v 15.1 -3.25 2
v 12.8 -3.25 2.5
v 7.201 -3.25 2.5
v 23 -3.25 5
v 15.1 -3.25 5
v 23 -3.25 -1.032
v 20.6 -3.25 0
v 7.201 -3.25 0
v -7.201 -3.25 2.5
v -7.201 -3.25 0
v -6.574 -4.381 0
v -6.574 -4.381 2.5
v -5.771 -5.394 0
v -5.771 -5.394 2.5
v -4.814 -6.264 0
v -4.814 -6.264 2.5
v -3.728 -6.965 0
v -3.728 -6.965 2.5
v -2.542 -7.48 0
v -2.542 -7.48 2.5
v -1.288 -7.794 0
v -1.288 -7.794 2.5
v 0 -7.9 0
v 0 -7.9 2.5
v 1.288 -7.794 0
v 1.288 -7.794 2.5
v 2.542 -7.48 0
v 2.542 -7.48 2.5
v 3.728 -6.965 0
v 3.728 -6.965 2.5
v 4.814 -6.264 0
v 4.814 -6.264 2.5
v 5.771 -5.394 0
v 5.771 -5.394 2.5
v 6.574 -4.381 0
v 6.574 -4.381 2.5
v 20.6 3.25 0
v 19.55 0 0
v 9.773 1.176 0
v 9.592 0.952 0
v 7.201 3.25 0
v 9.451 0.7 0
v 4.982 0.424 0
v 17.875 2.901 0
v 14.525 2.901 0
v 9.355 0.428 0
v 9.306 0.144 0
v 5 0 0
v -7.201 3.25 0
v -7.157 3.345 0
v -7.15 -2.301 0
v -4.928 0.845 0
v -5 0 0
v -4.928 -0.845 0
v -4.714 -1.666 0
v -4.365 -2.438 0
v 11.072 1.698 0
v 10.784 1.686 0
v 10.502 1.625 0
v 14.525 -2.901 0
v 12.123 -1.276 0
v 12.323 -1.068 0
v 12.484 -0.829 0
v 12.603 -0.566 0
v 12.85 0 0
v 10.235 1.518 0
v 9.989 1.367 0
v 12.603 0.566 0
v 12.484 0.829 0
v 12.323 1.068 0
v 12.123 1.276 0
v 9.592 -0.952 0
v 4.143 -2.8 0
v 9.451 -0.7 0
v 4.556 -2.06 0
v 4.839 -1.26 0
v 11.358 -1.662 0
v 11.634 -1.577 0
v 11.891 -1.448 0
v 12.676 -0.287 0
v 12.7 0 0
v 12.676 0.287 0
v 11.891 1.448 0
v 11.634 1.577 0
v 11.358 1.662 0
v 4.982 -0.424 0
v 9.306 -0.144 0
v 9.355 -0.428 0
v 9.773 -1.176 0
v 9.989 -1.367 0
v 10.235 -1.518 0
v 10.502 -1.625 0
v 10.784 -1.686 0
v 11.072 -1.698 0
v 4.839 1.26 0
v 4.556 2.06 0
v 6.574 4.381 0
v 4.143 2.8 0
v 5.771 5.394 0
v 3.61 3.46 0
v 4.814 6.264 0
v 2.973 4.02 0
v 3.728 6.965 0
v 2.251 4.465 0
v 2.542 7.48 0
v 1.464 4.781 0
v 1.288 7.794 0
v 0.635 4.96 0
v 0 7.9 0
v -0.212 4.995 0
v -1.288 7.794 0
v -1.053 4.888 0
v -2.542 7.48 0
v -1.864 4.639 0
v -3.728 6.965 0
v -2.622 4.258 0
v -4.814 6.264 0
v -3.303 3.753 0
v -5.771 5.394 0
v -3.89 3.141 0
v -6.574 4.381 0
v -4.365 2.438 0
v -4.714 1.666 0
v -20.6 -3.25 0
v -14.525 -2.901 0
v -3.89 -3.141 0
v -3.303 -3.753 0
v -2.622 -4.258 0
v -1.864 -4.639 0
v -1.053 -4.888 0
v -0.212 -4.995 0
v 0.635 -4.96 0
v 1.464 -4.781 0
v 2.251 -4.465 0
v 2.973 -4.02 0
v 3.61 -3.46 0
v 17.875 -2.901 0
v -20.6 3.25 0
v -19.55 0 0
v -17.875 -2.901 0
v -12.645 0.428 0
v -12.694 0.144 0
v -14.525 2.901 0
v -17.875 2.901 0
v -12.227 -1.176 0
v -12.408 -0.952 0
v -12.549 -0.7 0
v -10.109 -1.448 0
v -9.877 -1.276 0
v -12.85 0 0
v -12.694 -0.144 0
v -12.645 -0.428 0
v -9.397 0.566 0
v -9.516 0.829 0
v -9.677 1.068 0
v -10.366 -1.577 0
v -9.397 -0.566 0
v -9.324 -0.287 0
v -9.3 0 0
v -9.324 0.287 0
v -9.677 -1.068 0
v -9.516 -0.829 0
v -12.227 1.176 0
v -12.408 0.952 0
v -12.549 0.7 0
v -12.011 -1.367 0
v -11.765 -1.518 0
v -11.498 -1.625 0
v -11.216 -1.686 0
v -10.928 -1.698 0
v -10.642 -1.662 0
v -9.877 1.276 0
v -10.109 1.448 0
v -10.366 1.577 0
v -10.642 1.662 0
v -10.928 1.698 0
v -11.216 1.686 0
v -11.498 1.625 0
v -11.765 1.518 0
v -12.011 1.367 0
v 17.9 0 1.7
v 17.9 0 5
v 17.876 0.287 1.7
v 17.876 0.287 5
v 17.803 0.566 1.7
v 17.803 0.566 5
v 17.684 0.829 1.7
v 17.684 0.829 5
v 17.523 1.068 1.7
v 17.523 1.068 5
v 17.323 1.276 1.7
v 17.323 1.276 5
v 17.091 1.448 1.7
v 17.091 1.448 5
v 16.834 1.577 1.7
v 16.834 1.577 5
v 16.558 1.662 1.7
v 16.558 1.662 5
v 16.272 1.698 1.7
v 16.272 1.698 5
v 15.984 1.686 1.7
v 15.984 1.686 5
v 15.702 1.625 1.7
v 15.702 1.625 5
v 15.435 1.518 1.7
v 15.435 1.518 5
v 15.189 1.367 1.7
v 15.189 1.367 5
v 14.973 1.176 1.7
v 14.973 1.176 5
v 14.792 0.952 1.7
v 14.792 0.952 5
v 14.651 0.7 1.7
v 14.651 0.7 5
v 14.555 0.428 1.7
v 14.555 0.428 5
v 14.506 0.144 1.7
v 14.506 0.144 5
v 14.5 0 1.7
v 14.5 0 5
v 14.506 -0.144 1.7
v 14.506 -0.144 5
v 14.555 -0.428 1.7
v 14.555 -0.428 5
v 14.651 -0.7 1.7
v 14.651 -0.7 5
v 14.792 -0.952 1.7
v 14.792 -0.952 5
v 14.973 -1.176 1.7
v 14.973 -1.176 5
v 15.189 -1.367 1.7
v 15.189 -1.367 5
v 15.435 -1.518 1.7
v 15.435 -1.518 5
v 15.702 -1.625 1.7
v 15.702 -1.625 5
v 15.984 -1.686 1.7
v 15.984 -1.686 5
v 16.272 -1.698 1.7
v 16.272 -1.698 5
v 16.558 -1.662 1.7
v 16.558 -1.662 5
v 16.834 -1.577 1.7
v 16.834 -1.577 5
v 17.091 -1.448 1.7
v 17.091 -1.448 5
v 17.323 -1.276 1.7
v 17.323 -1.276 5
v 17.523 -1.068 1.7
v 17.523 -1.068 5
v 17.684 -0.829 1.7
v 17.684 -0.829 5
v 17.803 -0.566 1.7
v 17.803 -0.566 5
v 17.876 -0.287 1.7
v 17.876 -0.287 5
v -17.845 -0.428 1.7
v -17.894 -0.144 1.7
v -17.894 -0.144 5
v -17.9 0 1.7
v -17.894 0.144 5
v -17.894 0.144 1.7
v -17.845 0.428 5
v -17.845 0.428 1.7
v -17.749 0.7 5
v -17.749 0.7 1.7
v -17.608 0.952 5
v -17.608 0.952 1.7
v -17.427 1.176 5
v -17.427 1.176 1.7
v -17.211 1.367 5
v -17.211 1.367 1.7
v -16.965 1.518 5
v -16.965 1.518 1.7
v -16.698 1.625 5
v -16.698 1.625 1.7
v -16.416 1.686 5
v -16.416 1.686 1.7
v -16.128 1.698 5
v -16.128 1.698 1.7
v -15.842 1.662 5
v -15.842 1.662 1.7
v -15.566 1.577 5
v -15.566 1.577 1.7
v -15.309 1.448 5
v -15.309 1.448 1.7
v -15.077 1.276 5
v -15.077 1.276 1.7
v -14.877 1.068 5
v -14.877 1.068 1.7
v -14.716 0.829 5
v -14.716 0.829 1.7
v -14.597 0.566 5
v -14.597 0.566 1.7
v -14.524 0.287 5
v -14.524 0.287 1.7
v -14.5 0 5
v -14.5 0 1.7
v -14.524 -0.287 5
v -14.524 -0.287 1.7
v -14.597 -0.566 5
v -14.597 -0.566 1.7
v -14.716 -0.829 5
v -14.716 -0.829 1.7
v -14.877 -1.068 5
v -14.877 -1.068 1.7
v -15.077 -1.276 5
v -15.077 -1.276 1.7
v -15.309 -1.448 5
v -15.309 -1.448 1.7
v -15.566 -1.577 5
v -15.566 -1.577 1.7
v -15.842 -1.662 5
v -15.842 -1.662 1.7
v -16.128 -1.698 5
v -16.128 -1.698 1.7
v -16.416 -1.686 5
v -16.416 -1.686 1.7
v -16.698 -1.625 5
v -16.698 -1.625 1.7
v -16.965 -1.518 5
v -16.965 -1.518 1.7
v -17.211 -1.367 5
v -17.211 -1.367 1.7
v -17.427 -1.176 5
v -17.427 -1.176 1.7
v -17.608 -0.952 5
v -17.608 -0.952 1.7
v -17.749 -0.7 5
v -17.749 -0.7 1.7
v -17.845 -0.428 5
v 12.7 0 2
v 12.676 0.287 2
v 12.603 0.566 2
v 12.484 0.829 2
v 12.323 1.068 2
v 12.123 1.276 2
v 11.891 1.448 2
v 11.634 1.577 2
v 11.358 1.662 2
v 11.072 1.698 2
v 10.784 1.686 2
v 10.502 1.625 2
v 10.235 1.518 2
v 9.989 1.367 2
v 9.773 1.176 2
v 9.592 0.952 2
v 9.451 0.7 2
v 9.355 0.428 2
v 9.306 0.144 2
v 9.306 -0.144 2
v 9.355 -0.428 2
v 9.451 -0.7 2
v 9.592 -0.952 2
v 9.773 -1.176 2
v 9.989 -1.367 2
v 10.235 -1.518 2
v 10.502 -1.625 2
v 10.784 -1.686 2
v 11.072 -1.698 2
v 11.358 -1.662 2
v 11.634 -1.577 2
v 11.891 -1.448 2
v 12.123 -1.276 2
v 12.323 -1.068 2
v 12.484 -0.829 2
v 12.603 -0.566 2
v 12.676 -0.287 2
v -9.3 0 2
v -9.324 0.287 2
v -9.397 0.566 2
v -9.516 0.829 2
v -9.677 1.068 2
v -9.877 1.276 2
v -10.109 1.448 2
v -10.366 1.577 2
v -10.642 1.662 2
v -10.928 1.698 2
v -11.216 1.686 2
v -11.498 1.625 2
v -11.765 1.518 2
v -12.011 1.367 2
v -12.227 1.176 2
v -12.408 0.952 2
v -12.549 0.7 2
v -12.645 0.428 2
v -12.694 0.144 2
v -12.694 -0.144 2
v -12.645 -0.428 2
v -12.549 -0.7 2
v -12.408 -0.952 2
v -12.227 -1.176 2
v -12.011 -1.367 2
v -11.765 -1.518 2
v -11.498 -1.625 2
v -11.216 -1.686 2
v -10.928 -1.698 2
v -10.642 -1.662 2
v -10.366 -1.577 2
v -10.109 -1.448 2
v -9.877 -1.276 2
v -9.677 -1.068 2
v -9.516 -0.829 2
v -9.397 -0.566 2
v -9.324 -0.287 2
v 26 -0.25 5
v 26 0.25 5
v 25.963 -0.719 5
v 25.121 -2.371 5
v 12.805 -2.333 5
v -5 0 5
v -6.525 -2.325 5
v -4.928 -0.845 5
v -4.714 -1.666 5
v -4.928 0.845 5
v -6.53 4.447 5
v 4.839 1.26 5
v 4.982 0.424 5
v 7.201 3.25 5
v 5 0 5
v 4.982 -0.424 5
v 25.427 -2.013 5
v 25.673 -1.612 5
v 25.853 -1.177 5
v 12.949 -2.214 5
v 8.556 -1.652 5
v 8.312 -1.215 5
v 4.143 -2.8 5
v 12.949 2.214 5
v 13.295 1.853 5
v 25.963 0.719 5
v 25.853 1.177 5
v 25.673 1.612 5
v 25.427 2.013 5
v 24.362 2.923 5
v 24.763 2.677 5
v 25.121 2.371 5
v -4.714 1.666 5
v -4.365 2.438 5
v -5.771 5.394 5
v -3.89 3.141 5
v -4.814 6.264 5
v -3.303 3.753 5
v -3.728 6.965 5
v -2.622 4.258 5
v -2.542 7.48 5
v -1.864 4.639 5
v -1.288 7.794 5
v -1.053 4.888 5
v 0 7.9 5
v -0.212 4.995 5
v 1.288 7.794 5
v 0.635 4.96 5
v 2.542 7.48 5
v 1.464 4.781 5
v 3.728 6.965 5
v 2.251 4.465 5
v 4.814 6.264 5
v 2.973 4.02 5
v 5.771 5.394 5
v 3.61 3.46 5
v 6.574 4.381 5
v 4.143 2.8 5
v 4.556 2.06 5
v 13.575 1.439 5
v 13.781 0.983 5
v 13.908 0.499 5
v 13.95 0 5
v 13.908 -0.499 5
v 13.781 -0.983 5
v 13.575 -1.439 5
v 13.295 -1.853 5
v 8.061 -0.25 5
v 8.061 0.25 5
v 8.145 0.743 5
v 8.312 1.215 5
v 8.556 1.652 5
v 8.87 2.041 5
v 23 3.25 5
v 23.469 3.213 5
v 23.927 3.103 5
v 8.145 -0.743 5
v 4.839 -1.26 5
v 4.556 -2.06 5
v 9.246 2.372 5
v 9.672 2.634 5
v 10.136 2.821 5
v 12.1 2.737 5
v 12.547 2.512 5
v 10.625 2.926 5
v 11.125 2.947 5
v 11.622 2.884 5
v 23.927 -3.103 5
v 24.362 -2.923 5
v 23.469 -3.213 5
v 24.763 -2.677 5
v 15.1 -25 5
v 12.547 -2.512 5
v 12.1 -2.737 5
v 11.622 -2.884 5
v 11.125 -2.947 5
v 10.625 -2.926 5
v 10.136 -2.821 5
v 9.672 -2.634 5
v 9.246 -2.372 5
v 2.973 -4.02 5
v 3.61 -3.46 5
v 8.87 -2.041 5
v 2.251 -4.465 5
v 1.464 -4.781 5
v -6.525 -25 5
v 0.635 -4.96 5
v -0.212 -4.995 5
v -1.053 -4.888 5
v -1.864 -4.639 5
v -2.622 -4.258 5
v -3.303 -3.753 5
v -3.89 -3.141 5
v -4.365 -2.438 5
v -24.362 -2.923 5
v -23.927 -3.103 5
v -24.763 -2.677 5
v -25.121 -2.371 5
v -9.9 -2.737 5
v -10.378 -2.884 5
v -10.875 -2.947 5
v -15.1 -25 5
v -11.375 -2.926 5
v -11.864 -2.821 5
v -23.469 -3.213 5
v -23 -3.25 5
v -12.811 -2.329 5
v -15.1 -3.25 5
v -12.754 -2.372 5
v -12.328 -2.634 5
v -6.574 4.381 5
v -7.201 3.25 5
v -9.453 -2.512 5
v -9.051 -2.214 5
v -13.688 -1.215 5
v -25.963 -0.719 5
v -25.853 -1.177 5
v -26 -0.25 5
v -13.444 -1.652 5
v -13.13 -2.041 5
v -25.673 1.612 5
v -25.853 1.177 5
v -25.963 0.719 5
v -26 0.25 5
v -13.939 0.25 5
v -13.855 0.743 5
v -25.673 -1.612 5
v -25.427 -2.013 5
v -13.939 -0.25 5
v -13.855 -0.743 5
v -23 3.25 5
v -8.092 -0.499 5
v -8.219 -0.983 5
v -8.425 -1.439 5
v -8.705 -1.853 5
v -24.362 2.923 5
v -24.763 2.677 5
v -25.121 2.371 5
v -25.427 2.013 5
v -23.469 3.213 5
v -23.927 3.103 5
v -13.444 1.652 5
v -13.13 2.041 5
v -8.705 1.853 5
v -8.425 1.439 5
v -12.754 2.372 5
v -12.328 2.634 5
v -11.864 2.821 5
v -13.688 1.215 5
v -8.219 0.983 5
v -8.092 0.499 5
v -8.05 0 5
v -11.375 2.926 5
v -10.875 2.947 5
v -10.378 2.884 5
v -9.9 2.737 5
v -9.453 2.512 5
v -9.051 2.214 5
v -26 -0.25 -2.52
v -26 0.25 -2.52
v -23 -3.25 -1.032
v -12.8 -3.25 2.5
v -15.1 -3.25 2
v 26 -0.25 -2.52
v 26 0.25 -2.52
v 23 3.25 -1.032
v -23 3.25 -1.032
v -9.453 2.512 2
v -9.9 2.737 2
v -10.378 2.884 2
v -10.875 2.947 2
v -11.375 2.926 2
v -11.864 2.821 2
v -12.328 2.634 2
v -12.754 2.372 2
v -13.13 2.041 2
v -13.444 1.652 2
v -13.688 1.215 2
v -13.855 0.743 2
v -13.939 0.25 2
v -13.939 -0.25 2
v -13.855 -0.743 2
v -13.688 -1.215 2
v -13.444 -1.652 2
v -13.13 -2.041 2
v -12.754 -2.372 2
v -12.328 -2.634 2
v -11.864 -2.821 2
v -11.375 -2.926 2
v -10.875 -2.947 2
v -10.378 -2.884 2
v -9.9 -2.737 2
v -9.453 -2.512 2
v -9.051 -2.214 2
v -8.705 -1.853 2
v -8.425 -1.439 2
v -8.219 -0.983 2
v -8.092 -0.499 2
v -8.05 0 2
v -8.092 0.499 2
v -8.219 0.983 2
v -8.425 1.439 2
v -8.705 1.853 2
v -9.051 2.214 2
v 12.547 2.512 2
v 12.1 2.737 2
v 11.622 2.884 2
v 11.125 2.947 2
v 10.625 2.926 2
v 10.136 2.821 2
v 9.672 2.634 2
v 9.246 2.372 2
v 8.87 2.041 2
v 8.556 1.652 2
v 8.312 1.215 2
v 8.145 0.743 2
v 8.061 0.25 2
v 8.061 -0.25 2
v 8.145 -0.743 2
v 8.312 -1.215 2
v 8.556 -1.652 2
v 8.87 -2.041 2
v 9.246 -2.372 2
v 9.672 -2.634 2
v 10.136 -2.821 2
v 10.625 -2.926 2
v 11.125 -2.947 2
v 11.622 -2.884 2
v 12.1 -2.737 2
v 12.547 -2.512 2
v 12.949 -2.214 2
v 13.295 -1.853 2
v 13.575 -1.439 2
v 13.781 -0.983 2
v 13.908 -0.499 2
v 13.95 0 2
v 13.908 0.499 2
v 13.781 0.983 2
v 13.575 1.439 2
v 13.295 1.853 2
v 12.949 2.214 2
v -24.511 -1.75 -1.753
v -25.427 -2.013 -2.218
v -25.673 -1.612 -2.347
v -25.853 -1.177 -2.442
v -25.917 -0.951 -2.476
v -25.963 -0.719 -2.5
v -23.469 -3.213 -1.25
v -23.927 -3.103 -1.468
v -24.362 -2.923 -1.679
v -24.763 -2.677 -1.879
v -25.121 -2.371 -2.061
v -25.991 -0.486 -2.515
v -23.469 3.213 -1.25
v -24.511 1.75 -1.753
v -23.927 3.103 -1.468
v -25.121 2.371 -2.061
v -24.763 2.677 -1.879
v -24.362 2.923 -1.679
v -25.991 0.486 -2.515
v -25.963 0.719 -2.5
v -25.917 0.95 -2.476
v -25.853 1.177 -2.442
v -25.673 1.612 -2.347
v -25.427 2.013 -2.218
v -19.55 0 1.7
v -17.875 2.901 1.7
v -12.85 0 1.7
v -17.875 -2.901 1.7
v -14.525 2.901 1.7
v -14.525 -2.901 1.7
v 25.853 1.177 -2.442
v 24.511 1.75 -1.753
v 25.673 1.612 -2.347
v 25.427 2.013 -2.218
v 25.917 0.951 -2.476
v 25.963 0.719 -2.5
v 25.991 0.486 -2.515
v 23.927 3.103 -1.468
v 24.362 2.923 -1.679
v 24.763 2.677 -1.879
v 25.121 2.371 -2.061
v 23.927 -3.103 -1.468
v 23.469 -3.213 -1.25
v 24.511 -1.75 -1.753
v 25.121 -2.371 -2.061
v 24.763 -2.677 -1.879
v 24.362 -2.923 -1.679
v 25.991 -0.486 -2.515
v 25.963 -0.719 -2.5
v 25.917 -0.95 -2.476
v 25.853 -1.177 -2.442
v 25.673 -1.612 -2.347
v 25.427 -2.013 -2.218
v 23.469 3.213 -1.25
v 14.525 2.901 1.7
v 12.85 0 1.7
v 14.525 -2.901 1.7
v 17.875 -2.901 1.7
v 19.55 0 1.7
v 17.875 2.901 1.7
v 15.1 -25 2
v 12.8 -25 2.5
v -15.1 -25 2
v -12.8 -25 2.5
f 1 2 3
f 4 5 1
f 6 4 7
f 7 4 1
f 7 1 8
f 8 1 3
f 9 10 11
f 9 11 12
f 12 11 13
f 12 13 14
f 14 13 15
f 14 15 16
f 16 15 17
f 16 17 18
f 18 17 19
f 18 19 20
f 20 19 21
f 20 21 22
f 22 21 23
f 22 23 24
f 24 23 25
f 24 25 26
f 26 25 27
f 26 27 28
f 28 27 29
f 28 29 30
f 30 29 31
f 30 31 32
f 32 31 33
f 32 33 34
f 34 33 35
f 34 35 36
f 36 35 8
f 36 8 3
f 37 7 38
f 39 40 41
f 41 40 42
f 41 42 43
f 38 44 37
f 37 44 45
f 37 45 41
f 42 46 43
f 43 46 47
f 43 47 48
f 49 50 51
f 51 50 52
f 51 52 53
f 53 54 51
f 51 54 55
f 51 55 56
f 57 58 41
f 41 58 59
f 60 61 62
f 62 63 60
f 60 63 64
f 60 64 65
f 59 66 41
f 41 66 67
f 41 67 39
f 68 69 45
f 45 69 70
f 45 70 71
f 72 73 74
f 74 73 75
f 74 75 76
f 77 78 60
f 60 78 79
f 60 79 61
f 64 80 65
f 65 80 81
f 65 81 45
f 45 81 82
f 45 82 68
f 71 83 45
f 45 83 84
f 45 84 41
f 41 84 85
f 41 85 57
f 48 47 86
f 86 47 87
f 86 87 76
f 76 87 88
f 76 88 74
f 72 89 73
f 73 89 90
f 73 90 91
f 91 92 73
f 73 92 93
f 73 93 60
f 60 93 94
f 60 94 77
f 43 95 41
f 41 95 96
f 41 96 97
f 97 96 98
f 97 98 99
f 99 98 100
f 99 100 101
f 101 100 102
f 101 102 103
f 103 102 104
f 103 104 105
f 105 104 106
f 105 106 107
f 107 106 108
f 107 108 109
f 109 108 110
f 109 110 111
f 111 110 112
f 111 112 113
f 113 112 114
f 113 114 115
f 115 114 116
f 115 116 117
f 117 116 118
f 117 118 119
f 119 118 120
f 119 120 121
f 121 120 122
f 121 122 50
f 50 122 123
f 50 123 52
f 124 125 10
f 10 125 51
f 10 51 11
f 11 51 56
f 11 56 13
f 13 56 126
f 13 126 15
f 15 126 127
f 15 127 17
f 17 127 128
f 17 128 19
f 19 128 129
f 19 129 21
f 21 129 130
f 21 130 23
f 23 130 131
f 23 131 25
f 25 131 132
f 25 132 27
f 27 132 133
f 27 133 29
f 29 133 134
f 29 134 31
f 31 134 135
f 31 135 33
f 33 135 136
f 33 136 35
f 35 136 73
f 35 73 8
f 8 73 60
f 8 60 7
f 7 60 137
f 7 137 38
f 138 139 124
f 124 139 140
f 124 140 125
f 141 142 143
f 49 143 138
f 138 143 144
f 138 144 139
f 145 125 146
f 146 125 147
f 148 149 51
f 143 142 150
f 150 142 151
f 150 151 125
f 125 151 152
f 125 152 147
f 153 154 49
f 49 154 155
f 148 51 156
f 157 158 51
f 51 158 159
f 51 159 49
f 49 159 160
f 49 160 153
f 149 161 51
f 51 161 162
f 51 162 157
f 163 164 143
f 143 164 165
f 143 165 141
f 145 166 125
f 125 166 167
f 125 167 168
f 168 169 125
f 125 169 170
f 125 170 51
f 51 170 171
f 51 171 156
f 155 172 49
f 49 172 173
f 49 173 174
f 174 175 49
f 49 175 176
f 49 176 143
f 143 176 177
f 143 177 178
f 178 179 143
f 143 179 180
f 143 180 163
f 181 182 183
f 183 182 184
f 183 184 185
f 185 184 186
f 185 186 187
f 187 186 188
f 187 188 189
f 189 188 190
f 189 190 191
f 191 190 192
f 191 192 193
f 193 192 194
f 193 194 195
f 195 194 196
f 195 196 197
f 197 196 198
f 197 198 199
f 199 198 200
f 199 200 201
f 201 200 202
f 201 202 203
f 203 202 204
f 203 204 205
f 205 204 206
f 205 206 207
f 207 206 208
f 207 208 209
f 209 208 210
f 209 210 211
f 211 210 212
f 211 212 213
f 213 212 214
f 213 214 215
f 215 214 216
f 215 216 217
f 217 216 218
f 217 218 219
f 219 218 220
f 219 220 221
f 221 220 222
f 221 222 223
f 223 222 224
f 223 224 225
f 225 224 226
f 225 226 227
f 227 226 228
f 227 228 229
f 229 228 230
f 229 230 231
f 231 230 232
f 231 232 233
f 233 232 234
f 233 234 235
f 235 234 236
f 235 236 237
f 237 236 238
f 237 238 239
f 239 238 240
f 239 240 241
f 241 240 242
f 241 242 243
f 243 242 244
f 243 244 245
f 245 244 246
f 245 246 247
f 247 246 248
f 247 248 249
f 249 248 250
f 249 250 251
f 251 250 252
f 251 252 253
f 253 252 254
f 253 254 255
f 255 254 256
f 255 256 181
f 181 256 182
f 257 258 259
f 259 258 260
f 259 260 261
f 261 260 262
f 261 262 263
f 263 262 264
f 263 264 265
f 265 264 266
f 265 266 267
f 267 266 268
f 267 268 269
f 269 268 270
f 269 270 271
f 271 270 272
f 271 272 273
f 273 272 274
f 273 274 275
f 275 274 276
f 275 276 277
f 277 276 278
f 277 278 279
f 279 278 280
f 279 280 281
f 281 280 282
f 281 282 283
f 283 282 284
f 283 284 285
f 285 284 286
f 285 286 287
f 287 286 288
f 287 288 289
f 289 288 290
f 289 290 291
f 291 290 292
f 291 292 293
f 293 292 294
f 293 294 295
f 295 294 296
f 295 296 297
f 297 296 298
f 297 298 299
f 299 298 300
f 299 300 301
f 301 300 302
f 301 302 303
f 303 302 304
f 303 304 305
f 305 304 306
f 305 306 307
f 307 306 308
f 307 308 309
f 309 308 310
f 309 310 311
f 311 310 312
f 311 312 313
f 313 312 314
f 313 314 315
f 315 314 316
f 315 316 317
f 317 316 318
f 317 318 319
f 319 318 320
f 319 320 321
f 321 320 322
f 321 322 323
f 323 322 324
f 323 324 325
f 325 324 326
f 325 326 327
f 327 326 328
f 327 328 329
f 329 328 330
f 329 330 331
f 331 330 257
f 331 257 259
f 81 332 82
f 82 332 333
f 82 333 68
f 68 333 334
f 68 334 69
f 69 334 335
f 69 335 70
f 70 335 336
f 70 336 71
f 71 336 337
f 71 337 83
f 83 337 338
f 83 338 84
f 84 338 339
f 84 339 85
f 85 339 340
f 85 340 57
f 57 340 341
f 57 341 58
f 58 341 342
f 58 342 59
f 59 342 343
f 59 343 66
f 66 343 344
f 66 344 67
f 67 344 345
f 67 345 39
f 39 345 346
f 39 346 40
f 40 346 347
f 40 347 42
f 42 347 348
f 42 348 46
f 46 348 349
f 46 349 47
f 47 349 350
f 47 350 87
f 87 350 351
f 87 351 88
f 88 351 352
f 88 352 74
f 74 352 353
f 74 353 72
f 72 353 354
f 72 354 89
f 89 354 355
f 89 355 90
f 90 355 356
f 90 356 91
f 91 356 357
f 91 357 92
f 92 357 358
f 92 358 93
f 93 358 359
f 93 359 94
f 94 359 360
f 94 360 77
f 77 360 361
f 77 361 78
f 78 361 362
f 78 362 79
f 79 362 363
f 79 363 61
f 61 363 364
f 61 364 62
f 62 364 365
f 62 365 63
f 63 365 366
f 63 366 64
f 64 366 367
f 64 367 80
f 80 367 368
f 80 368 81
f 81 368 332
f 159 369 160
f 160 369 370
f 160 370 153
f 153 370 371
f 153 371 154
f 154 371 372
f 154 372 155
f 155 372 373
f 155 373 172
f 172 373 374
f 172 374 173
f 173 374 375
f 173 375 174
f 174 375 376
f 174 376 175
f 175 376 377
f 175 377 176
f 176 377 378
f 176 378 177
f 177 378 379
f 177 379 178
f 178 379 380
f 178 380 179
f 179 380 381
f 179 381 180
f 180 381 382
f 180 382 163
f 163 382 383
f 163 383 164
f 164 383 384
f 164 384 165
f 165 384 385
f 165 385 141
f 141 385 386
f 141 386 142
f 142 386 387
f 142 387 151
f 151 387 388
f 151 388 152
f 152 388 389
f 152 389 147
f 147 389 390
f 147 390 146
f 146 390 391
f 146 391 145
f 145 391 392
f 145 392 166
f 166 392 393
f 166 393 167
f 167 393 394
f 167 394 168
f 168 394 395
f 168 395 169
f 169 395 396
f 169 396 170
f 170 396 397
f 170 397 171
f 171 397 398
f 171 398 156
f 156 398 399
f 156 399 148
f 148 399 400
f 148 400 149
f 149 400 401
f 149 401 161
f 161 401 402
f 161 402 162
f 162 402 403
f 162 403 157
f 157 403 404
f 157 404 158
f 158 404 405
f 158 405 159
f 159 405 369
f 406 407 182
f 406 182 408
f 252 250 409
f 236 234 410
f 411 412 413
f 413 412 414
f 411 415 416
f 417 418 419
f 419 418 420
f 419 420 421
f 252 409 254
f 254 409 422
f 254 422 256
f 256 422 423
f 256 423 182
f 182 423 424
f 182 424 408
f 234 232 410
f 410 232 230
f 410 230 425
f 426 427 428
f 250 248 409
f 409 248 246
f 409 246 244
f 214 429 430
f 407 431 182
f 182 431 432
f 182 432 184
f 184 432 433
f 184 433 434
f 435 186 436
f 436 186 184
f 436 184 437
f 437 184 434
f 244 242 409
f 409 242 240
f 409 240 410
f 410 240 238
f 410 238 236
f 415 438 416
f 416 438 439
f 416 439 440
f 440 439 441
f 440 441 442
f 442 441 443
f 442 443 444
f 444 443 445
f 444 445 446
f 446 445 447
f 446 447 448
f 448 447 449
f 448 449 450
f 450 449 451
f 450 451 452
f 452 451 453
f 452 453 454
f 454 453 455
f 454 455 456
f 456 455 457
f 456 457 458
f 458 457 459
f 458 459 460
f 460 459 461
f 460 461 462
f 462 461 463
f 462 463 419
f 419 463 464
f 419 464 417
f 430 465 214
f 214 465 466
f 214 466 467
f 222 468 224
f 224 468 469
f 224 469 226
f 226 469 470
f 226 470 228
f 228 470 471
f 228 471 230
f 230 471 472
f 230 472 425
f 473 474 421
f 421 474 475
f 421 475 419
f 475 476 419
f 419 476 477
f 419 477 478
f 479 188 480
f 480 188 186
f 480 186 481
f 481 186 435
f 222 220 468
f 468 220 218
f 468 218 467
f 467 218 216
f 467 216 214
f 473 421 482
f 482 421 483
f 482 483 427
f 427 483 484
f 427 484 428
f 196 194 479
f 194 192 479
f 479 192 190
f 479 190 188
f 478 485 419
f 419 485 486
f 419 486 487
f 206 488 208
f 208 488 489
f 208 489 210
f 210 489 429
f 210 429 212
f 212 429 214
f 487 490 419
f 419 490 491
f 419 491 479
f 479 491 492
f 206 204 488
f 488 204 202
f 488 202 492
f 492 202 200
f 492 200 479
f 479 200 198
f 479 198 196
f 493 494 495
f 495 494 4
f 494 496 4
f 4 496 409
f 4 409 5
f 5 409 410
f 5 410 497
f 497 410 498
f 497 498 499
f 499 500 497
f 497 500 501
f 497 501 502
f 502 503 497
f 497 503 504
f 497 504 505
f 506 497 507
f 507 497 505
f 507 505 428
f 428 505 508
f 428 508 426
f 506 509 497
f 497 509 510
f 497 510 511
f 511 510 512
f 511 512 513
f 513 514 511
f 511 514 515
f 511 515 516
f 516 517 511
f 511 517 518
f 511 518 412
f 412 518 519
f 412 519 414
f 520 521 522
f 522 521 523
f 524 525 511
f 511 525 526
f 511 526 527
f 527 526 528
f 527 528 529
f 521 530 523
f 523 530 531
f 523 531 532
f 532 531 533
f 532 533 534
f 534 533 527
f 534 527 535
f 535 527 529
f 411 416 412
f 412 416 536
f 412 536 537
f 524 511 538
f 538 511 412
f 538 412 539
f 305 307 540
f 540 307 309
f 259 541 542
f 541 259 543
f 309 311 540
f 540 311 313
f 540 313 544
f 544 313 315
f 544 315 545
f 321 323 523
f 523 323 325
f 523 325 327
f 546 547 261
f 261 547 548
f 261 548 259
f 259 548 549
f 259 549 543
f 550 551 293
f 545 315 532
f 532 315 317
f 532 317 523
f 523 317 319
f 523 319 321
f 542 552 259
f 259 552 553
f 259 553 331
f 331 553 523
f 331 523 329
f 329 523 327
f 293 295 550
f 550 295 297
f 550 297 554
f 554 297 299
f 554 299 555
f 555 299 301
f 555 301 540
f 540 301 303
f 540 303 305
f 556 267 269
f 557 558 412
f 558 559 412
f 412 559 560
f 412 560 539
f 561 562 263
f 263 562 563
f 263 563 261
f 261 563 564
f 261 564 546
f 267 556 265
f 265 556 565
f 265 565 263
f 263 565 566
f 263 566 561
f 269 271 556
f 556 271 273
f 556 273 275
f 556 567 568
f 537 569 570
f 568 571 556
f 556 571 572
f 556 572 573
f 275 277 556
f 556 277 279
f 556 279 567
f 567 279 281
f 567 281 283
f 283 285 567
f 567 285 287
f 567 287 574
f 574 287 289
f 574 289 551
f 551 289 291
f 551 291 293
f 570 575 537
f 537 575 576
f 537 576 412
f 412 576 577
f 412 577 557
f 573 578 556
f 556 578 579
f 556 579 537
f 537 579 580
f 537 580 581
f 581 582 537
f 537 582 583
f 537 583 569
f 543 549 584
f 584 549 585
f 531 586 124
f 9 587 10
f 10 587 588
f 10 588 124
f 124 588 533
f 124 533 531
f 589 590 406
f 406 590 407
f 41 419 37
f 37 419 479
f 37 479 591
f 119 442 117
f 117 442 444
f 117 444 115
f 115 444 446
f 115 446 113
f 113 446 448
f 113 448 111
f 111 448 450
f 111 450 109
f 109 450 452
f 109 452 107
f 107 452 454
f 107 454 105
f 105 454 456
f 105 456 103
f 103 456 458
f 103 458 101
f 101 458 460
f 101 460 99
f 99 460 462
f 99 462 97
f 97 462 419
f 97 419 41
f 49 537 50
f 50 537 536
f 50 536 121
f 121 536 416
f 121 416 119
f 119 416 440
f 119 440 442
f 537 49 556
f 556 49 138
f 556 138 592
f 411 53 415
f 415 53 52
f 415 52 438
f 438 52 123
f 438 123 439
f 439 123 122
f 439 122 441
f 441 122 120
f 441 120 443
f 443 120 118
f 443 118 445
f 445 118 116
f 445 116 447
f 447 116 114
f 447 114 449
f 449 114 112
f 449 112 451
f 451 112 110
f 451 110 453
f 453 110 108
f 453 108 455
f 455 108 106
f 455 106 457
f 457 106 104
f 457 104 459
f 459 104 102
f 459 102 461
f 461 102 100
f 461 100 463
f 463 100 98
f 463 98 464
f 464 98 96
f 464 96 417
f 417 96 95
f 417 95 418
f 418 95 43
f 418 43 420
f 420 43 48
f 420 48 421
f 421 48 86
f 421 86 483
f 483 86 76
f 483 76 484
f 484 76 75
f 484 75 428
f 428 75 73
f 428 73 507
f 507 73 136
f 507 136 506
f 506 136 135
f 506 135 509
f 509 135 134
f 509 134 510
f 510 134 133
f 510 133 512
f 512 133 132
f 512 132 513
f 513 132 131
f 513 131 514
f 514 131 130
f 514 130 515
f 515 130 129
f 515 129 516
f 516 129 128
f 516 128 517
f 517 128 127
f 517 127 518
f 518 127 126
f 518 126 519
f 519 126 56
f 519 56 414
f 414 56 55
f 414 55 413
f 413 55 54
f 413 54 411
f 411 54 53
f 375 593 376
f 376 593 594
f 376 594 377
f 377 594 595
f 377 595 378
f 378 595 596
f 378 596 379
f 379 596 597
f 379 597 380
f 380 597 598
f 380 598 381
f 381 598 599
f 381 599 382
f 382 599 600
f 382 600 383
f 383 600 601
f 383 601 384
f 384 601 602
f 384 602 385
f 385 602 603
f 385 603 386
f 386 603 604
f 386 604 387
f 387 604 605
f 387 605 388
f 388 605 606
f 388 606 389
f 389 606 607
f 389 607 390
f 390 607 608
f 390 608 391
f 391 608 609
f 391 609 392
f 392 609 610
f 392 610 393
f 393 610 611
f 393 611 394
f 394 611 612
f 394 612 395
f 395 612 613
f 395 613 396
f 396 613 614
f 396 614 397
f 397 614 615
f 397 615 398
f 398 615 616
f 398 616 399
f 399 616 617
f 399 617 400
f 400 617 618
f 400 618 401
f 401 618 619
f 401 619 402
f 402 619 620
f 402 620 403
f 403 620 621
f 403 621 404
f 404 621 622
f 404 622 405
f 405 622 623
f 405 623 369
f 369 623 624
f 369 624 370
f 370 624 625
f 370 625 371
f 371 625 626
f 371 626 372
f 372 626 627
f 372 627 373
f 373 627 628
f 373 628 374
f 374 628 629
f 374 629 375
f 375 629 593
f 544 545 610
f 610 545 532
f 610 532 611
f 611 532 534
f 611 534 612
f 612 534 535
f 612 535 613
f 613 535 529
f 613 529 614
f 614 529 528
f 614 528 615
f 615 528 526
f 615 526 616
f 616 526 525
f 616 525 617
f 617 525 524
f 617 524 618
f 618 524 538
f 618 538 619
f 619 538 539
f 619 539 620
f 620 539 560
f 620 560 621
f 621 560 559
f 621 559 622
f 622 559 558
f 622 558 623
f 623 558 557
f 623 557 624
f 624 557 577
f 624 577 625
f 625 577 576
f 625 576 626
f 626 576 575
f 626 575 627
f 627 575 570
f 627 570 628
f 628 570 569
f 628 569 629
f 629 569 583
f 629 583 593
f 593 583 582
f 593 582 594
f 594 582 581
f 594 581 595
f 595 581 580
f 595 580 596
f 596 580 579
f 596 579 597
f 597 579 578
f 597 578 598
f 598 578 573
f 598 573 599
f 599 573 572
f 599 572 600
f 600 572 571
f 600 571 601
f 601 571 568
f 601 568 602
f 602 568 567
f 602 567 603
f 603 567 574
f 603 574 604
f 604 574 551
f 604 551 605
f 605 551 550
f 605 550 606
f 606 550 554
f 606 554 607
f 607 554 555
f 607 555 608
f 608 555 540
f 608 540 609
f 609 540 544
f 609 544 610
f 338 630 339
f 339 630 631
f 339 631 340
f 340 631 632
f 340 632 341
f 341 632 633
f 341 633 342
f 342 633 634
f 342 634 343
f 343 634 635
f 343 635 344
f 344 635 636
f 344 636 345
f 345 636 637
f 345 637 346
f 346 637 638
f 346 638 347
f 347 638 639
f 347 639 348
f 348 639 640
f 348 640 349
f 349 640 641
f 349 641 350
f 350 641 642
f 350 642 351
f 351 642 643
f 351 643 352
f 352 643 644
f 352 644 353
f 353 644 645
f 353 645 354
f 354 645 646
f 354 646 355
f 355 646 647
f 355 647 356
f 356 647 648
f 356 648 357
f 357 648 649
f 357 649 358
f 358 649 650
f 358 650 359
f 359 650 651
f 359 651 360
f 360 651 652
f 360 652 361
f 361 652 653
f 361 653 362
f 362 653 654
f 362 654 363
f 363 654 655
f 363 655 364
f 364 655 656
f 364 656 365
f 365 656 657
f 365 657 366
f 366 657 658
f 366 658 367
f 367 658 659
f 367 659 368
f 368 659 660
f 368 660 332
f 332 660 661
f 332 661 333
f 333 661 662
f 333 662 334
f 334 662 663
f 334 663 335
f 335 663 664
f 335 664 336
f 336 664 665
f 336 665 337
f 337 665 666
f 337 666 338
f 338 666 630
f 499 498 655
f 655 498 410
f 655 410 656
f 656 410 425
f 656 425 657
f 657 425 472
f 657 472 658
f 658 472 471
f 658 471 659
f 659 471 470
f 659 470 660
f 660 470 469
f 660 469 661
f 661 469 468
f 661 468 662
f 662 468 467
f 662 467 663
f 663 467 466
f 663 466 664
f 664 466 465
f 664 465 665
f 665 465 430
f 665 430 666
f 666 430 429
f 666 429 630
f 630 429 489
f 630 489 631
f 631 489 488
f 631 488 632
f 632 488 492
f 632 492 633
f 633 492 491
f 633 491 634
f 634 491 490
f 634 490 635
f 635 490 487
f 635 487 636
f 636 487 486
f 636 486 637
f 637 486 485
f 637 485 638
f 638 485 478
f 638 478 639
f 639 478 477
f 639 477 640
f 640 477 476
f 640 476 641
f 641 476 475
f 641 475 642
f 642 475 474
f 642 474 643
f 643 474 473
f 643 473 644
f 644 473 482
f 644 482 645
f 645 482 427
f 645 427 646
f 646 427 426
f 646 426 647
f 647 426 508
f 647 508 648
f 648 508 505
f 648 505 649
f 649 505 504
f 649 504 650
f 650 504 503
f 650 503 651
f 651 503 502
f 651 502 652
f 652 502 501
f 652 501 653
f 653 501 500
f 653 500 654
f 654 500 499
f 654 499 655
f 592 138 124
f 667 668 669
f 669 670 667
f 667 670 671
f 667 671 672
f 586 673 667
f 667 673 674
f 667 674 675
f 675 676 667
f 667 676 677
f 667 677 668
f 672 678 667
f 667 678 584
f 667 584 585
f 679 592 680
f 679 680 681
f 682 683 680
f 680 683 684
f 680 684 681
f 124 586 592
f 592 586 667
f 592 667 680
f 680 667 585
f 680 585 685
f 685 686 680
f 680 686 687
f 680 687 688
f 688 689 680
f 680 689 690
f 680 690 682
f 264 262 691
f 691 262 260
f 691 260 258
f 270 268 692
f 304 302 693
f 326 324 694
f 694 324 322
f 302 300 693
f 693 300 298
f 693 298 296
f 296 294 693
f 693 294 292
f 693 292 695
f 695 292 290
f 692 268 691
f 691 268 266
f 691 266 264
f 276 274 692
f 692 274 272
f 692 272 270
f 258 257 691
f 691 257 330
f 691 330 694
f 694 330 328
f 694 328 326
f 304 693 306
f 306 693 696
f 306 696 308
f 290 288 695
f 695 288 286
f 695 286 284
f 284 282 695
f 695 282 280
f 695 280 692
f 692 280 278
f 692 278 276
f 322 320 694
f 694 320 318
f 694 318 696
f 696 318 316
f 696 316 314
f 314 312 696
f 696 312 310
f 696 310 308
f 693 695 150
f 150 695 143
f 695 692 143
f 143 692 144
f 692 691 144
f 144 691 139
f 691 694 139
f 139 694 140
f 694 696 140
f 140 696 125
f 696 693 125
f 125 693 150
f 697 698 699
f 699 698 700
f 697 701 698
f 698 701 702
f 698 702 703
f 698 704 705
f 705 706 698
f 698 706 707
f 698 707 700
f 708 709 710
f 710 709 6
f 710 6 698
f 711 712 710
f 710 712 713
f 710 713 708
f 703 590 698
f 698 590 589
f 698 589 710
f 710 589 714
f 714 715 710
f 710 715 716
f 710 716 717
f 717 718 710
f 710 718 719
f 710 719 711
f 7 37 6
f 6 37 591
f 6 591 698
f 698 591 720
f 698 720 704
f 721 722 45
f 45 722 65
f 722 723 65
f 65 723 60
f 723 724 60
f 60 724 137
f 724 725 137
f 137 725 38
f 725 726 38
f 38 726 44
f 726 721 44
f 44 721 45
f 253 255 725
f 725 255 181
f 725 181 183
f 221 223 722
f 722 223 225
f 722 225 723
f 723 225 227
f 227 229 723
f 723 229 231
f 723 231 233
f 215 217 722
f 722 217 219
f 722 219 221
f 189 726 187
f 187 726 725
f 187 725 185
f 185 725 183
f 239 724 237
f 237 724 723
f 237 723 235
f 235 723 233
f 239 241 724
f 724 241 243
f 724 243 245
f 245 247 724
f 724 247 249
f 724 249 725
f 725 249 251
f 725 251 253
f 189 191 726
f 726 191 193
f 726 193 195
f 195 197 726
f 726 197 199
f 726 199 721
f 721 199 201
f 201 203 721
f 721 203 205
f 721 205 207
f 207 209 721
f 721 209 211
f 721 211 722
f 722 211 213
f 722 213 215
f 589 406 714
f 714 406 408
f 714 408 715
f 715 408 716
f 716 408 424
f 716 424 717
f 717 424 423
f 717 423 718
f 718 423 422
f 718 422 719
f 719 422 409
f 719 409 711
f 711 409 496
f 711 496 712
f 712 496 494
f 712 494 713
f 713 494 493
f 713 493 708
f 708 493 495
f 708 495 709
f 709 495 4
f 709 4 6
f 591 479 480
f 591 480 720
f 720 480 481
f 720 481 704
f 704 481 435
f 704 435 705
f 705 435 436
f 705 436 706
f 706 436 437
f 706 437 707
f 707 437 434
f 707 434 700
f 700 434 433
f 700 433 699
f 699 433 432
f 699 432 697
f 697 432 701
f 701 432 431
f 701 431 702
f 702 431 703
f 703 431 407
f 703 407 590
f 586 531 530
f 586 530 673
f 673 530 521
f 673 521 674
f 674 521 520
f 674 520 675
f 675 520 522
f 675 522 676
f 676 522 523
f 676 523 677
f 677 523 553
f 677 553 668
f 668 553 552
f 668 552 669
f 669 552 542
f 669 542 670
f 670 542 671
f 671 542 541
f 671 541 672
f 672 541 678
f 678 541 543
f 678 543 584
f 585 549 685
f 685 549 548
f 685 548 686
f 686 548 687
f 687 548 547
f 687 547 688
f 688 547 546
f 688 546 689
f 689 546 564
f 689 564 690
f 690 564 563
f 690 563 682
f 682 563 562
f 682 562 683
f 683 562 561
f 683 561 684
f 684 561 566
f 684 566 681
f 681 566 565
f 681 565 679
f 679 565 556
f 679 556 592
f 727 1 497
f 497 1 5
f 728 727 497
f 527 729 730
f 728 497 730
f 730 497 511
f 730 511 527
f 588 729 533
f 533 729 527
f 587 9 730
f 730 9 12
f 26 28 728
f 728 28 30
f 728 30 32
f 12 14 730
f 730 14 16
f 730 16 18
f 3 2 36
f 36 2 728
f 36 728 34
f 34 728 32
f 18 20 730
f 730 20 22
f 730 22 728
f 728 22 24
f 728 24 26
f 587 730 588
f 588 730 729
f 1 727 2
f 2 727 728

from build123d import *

# Parameters (mm, degrees)
CROQUIS1_R              = 5
SALIENTE_EXTRUIR1_DEPTH = 5
CROQUIS2_R              = 1.7
CORTAR_EXTRUIR1_DEPTH   = 5
CROQUIS3_R              = 2.95
CORTAR_EXTRUIR2_DEPTH   = 3
SALIENTE_EXTRUIR2_DEPTH = 3.25
CROQUIS5_R              = 1.7
CORTAR_EXTRUIR3_DEPTH   = 10
CORTAR_EXTRUIR4_DEPTH   = 1.7
REDONDEO1_R             = 3
SALIENTE_EXTRUIR3_DEPTH = 2.5
SALIENTE_EXTRUIR4_DEPTH = 21.75


with BuildPart() as part:
    # Croquis1 → Saliente-Extruir1 (new body)
    with BuildSketch(Plane.XY):
        with BuildLine():
            Line((-7.200520814, 3.25), (-26, 3.25))
            Line((-26, 3.25), (-26, -3.25))
            Line((-26, -3.25), (-7.200520814, -3.25))
            ThreePointArc((-7.200520814, -3.25), (0, -7.9), (7.200520814, -3.25))
            Line((7.200520814, -3.25), (26, -3.25))
            Line((26, -3.25), (26, 3.25))
            Line((26, 3.25), (7.200520814, 3.25))
            ThreePointArc((7.200520814, 3.25), (0, 7.9), (-7.200520814, 3.25))
        make_face()
        Circle(CROQUIS1_R, mode=Mode.SUBTRACT)
    extrude(amount=SALIENTE_EXTRUIR1_DEPTH)

    # Croquis2 → Cortar-Extruir1 (cut)
    with BuildSketch(Plane.XY.offset(5)):
        with Locations((-11, 0)):
            Circle(CROQUIS2_R)
        with Locations((11, 0)):
            Circle(CROQUIS2_R)
    extrude(amount=-CORTAR_EXTRUIR1_DEPTH, mode=Mode.SUBTRACT)

    # Croquis3 → Cortar-Extruir2 (cut)
    with BuildSketch(Plane.XY.offset(5)):
        with Locations((-11, 0)):
            Circle(CROQUIS3_R)
        with Locations((11, 0)):
            Circle(CROQUIS3_R)
    extrude(amount=-CORTAR_EXTRUIR2_DEPTH, mode=Mode.SUBTRACT)

    # Croquis4 → Saliente-Extruir2 (add, symmetric)
    with BuildSketch(Plane(origin=(0, 0, 0), x_dir=(1, 0, 0), z_dir=(0, 1, 0))):
        with BuildLine():
            Line((-26, 0), (-20.6, 0))
            ThreePointArc((-20.6, 0), (-23.334154241, 1.186812342), (-26, 2.52))
            Line((-26, 2.52), (-26, 0))
        make_face()
    saliente_extruir2 = extrude(amount=SALIENTE_EXTRUIR2_DEPTH, both=True)

    # Croquis5 → Cortar-Extruir3 (cut)
    with BuildSketch(Plane.XY.offset(5)):
        with Locations((-16.2, 0)):
            Circle(CROQUIS5_R)
    cortar_extruir3 = extrude(amount=-CORTAR_EXTRUIR3_DEPTH, mode=Mode.SUBTRACT)

    # Croquis6 → Cortar-Extruir4 (cut)
    with BuildSketch(Plane(origin=(0, 0, 0), x_dir=(-1, 0, 0), z_dir=(0, 0, -1))):
        Polygon((19.55, 0), (17.875, 2.901185103), (14.525, 2.901185103), (12.85, 0), (14.525, -2.901185103), (17.875, -2.901185103), align=None)
    cortar_extruir4 = extrude(amount=-CORTAR_EXTRUIR4_DEPTH, mode=Mode.SUBTRACT)

    # Simetría2: Saliente-Extruir2, Cortar-Extruir3, Cortar-Extruir4 across plane
    add(saliente_extruir2.mirror(Plane(origin=(0, 0, 0), x_dir=(0, 0, 1), z_dir=(1, 0, 0))))
    add(cortar_extruir3.mirror(Plane(origin=(0, 0, 0), x_dir=(0, 0, 1), z_dir=(1, 0, 0))), mode=Mode.SUBTRACT)
    add(cortar_extruir4.mirror(Plane(origin=(0, 0, 0), x_dir=(0, 0, 1), z_dir=(1, 0, 0))), mode=Mode.SUBTRACT)

    # Redondeo1
    redondeo1_edges = [part.edges().sort_by_distance(p)[0] for p in [
        (-26, 3.25, 1.24),
        (26, 3.25, 1.24),
        (26, -3.25, 1.24),
        (-26, -3.25, 1.24),
    ]]
    fillet(redondeo1_edges, radius=REDONDEO1_R)

    # Croquis7 → Saliente-Extruir3 (add)
    with BuildSketch(Plane.XY.offset(5)):
        with BuildLine():
            Line((-15.100260407, -3.25), (-7.200520814, -3.25))
            ThreePointArc((-7.200520814, -3.25), (0, -7.9), (7.200520814, -3.25))
            Line((7.200520814, -3.25), (15.100260407, -3.25))
            Line((15.100260407, -3.25), (15.100260407, -25))
            Line((15.100260407, -25), (-15.100260407, -25))
            Line((-15.100260407, -25), (-15.100260407, -3.25))
        make_face()
    extrude(amount=-SALIENTE_EXTRUIR3_DEPTH)

    # Croquis8 → Saliente-Extruir4 (add)
    with BuildSketch(Plane.XZ.offset(25)):
        with BuildLine():
            Line((-15.100260407, 2.5), (-15.100260407, 2))
            ThreePointArc((-15.100260407, 2), (-13.952935396, 2.262304947), (-12.800260407, 2.5))
            Line((-12.800260407, 2.5), (-15.100260407, 2.5))
        make_face()
        with BuildLine():
            Line((15.100260407, 2.5), (12.800260407, 2.5))
            ThreePointArc((12.800260407, 2.5), (13.952935396, 2.262304947), (15.100260407, 2))
            Line((15.100260407, 2), (15.100260407, 2.5))
        make_face()
    extrude(amount=-SALIENTE_EXTRUIR4_DEPTH)


solid = part.part
